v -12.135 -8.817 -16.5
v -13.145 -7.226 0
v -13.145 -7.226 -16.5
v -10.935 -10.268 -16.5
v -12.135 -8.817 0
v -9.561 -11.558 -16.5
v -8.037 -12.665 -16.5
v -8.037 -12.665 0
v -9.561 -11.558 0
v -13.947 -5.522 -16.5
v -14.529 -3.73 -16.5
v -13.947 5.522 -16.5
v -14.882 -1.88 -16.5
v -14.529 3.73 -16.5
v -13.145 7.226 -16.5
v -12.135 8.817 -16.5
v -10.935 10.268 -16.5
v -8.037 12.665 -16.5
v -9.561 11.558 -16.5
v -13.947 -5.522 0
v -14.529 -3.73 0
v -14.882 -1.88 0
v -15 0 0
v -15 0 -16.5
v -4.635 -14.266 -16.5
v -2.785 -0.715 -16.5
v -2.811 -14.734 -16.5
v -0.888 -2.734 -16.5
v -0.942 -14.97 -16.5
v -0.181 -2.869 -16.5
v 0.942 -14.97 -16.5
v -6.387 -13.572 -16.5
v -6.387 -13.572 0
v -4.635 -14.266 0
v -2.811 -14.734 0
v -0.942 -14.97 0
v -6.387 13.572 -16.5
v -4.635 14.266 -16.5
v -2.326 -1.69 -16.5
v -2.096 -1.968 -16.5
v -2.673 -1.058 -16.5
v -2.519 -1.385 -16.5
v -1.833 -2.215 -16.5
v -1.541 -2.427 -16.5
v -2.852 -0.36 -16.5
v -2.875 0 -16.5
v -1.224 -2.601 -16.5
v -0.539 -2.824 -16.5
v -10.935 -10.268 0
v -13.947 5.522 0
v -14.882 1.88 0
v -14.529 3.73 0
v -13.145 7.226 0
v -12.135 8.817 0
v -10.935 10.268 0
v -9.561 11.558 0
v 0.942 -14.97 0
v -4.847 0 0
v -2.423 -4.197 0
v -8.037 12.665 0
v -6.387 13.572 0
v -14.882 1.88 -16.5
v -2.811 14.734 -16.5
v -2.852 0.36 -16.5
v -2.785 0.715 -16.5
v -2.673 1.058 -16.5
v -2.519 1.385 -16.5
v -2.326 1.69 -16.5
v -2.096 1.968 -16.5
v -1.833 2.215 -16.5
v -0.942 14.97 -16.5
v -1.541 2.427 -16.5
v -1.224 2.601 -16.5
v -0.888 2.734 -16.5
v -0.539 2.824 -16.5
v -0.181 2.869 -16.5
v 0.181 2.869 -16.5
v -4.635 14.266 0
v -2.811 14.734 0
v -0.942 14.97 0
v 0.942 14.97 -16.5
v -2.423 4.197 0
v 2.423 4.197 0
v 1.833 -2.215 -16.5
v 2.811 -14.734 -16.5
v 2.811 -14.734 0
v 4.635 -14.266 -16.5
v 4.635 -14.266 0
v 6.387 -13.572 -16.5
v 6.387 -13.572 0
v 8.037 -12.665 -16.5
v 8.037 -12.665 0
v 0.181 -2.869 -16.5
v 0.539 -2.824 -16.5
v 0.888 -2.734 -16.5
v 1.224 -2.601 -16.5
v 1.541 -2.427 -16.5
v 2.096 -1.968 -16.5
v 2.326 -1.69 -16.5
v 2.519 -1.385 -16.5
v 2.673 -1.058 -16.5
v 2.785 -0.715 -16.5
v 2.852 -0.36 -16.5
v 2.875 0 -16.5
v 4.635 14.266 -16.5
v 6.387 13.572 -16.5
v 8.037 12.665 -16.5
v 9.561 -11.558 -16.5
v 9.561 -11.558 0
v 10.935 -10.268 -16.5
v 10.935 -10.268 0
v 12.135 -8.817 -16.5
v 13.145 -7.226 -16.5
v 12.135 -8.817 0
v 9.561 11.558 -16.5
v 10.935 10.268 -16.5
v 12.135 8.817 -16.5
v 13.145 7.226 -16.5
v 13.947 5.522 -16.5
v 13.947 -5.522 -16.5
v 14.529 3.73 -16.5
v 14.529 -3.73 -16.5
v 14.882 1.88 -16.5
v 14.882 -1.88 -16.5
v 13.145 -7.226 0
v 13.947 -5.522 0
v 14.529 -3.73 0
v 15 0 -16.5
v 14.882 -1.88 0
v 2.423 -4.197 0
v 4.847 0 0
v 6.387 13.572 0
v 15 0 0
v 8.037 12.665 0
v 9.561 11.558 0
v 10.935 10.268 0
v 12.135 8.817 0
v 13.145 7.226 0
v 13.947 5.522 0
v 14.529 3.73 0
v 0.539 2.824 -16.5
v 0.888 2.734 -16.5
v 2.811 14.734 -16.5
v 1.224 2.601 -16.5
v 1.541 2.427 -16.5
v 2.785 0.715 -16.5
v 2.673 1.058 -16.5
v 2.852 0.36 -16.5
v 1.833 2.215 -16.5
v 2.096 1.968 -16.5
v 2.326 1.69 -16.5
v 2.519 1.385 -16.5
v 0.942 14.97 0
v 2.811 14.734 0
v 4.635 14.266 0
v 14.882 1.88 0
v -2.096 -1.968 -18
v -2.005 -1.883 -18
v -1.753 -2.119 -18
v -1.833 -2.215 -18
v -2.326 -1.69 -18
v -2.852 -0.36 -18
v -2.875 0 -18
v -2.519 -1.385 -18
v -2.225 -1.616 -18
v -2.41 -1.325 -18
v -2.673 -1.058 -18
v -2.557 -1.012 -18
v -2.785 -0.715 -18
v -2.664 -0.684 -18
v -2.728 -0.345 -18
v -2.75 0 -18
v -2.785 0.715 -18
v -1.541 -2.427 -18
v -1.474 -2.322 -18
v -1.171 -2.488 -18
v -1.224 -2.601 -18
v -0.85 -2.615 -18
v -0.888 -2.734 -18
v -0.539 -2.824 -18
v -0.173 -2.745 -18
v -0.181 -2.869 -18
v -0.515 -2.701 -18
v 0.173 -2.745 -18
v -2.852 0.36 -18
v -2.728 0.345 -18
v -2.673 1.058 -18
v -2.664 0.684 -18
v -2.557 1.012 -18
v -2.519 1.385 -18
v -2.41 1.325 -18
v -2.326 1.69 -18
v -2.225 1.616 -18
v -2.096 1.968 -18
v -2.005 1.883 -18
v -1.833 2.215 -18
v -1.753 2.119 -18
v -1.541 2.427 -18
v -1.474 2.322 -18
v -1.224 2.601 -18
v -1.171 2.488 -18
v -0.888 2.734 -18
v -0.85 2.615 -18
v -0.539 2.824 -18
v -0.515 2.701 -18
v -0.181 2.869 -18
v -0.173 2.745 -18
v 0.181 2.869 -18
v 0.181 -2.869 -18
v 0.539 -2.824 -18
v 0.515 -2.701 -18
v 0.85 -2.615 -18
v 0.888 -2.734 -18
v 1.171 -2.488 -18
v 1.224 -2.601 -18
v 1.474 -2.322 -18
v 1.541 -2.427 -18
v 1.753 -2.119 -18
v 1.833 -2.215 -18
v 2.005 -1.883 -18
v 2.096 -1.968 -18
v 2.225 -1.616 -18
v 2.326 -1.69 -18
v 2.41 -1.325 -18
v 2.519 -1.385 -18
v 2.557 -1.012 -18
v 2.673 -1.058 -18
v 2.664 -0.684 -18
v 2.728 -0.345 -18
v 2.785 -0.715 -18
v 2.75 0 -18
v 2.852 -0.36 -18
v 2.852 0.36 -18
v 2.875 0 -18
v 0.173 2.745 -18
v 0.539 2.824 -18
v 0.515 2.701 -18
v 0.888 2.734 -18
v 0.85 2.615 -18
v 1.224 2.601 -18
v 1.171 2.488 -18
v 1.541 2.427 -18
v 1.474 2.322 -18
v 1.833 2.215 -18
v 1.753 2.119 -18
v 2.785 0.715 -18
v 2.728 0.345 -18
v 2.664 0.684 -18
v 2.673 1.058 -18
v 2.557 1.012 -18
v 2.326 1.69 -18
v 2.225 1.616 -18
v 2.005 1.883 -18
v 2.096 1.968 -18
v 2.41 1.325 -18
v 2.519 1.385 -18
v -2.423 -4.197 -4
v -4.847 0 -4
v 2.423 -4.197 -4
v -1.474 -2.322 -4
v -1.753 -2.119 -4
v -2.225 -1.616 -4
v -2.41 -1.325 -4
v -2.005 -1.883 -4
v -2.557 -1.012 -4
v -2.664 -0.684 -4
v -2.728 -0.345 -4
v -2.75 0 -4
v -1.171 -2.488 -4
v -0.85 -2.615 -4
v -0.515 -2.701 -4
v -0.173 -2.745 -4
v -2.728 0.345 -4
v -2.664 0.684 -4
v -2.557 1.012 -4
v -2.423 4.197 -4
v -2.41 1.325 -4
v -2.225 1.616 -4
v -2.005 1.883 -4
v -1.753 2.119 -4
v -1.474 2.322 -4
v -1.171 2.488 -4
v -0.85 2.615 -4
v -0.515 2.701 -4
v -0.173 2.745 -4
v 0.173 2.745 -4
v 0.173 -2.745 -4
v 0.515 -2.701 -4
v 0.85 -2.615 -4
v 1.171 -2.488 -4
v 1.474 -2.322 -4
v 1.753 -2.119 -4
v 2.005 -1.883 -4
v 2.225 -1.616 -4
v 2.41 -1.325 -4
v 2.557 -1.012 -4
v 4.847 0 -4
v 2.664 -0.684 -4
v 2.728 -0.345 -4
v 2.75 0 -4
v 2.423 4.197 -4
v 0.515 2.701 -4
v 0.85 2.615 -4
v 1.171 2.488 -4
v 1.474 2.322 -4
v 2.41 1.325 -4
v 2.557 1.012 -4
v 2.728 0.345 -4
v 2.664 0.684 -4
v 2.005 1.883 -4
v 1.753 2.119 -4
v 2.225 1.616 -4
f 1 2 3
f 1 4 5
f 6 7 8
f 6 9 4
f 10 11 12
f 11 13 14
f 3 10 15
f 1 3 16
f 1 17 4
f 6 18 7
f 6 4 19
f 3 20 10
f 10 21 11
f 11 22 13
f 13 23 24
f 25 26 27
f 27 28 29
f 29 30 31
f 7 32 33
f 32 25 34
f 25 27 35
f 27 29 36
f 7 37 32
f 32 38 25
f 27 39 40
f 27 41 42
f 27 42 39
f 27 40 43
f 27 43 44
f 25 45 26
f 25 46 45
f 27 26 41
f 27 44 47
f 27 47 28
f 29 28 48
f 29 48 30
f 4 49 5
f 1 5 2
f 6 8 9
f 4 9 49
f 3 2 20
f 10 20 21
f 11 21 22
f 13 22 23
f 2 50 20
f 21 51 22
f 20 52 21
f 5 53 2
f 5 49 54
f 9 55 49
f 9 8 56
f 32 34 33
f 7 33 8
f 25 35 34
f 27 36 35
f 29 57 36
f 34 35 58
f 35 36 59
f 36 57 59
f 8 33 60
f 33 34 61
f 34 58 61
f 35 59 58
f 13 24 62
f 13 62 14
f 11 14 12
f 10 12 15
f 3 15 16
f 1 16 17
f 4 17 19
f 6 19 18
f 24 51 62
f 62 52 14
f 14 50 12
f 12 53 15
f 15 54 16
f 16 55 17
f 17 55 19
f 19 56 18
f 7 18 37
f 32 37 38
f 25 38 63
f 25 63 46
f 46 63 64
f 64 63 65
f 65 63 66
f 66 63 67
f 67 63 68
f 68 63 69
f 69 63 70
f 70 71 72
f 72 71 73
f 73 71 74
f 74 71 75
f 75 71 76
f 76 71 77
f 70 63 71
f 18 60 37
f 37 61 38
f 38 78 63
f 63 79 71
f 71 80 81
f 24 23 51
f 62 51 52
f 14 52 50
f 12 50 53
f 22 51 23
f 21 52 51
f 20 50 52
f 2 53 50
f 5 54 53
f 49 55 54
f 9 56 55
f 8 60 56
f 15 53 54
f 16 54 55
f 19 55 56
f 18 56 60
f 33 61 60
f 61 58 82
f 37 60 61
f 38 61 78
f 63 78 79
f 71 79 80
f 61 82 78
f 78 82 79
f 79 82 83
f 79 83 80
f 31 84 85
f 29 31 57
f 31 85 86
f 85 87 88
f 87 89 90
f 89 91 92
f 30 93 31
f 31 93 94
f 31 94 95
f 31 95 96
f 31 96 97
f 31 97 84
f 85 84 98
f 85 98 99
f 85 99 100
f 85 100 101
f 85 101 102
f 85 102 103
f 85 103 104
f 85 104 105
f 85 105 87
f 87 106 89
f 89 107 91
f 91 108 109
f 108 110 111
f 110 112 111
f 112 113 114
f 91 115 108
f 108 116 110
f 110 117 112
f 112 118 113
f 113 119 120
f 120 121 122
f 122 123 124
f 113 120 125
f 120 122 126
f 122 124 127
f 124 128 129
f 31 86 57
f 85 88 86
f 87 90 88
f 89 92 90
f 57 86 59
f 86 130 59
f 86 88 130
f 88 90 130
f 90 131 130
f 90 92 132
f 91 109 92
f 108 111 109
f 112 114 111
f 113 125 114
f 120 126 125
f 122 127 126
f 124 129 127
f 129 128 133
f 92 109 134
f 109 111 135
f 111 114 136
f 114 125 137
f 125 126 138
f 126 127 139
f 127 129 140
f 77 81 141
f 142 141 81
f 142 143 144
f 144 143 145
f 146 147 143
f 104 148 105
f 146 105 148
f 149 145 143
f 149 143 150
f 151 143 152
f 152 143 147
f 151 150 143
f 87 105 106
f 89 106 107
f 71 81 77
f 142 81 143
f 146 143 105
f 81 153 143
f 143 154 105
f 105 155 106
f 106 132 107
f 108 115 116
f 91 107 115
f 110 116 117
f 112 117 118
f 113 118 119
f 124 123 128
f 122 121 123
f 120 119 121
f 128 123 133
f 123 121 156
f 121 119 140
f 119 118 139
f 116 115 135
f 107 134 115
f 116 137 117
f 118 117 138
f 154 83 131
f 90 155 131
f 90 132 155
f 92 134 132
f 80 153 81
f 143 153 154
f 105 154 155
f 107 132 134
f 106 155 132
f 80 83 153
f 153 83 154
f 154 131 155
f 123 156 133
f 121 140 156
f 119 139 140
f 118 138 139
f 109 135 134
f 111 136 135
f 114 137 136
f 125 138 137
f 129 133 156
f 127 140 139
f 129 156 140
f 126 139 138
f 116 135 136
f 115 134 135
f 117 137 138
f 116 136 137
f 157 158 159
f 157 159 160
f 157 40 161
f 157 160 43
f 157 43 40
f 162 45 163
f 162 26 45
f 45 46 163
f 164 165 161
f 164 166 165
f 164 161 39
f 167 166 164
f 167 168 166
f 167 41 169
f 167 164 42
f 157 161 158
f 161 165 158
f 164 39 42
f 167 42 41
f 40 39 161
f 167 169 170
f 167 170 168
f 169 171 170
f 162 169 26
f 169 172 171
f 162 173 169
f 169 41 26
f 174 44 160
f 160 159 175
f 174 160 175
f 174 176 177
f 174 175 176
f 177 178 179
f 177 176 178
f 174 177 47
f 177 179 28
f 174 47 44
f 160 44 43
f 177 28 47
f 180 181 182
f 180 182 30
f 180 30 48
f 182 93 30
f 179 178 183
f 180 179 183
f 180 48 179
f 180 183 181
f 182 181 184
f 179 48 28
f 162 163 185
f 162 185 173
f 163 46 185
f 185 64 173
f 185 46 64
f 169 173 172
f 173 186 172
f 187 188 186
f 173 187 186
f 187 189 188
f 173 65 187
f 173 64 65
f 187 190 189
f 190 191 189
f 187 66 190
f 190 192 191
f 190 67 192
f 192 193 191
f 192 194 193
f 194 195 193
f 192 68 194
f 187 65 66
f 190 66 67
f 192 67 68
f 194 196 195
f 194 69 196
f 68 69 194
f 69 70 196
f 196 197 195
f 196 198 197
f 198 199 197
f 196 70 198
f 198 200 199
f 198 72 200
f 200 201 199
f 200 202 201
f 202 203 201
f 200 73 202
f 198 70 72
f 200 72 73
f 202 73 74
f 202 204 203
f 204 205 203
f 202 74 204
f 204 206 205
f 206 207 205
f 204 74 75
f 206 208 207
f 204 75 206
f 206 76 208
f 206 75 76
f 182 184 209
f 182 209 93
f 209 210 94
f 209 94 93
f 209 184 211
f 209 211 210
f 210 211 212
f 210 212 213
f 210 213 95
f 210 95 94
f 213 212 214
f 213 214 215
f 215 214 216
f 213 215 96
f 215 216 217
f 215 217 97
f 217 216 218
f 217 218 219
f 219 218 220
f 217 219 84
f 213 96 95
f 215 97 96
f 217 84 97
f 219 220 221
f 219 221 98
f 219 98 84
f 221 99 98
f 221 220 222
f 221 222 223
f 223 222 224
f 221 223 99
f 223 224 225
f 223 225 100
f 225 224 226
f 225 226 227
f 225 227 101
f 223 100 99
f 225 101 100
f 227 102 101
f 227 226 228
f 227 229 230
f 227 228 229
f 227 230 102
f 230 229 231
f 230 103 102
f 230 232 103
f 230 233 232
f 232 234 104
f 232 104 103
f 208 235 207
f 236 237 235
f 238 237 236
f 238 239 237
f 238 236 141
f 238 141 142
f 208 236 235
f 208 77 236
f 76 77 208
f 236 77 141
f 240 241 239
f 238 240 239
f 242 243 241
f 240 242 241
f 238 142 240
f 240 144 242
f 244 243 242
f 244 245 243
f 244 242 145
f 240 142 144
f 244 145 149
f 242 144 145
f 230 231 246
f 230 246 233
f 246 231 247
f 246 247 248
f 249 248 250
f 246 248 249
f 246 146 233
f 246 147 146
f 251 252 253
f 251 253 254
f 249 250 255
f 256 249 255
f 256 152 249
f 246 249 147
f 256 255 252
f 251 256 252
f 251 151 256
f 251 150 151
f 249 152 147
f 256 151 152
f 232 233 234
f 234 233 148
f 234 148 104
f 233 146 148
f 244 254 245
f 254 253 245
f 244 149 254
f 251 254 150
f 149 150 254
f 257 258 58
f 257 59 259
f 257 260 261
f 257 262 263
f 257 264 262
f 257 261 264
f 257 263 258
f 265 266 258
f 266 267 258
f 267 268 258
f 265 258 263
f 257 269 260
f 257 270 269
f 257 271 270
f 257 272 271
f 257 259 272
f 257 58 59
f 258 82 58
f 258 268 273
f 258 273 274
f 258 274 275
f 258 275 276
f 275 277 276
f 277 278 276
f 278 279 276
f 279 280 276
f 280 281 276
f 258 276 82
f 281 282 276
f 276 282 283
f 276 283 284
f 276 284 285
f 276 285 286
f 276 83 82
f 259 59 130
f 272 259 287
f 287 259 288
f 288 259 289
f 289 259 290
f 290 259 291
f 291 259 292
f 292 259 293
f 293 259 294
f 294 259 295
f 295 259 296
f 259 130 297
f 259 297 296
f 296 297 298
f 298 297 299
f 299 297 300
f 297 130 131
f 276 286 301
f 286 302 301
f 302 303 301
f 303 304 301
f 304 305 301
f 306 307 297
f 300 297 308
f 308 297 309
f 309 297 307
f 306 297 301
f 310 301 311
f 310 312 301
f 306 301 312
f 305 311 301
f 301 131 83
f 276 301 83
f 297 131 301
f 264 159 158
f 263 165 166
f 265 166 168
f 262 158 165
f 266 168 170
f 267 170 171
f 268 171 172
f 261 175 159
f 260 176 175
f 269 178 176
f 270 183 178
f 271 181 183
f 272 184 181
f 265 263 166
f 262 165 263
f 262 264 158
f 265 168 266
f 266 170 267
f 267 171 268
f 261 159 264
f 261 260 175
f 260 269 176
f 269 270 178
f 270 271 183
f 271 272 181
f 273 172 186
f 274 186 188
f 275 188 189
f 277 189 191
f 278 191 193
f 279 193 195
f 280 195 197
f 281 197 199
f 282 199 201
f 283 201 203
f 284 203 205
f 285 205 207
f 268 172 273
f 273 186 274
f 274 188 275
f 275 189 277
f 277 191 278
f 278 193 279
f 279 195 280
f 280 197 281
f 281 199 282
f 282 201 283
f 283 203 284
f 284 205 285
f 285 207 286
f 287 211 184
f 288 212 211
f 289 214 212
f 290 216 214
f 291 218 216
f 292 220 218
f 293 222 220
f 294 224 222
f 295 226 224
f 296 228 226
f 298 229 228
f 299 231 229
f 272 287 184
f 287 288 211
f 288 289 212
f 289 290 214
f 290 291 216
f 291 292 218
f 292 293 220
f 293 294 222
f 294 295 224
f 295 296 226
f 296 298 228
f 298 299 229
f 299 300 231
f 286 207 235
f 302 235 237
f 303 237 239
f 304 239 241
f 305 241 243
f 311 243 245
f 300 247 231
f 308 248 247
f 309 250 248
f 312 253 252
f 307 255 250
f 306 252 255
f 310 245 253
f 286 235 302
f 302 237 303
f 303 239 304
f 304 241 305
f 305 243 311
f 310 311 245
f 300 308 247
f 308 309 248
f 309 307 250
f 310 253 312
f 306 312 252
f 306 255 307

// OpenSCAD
$fn = 50;


difference() {
	union() {
		translate(v = [0, 0, -16.5000000000]) {
			cylinder(h = 16.5000000000, r = 15.0000000000);
		}
		#translate(v = [0, 0, -18.0000000000]) {
			cylinder(h = 18, r = 2.8750000000);
		}
	}
	union() {
		translate(v = [0, 0, 0]) {
			rotate(a = [0, 0, 0]) {
				difference() {
					union() {
						translate(v = [0, 0, -4]) {
							linear_extrude(height = 4) {
								polygon(points = [[4.8468000000, 0.0000000000], [2.4234000000, 4.1974519271], [-2.4234000000, 4.1974519271], [-4.8468000000, 0.0000000000], [-2.4234000000, -4.1974519271], [2.4234000000, -4.1974519271]]);
							}
						}
					}
					union();
				}
			}
		}
		#translate(v = [0, 0, -100.0000000000]) {
			cylinder(h = 200, r = 2.7500000000);
		}
	}
}
